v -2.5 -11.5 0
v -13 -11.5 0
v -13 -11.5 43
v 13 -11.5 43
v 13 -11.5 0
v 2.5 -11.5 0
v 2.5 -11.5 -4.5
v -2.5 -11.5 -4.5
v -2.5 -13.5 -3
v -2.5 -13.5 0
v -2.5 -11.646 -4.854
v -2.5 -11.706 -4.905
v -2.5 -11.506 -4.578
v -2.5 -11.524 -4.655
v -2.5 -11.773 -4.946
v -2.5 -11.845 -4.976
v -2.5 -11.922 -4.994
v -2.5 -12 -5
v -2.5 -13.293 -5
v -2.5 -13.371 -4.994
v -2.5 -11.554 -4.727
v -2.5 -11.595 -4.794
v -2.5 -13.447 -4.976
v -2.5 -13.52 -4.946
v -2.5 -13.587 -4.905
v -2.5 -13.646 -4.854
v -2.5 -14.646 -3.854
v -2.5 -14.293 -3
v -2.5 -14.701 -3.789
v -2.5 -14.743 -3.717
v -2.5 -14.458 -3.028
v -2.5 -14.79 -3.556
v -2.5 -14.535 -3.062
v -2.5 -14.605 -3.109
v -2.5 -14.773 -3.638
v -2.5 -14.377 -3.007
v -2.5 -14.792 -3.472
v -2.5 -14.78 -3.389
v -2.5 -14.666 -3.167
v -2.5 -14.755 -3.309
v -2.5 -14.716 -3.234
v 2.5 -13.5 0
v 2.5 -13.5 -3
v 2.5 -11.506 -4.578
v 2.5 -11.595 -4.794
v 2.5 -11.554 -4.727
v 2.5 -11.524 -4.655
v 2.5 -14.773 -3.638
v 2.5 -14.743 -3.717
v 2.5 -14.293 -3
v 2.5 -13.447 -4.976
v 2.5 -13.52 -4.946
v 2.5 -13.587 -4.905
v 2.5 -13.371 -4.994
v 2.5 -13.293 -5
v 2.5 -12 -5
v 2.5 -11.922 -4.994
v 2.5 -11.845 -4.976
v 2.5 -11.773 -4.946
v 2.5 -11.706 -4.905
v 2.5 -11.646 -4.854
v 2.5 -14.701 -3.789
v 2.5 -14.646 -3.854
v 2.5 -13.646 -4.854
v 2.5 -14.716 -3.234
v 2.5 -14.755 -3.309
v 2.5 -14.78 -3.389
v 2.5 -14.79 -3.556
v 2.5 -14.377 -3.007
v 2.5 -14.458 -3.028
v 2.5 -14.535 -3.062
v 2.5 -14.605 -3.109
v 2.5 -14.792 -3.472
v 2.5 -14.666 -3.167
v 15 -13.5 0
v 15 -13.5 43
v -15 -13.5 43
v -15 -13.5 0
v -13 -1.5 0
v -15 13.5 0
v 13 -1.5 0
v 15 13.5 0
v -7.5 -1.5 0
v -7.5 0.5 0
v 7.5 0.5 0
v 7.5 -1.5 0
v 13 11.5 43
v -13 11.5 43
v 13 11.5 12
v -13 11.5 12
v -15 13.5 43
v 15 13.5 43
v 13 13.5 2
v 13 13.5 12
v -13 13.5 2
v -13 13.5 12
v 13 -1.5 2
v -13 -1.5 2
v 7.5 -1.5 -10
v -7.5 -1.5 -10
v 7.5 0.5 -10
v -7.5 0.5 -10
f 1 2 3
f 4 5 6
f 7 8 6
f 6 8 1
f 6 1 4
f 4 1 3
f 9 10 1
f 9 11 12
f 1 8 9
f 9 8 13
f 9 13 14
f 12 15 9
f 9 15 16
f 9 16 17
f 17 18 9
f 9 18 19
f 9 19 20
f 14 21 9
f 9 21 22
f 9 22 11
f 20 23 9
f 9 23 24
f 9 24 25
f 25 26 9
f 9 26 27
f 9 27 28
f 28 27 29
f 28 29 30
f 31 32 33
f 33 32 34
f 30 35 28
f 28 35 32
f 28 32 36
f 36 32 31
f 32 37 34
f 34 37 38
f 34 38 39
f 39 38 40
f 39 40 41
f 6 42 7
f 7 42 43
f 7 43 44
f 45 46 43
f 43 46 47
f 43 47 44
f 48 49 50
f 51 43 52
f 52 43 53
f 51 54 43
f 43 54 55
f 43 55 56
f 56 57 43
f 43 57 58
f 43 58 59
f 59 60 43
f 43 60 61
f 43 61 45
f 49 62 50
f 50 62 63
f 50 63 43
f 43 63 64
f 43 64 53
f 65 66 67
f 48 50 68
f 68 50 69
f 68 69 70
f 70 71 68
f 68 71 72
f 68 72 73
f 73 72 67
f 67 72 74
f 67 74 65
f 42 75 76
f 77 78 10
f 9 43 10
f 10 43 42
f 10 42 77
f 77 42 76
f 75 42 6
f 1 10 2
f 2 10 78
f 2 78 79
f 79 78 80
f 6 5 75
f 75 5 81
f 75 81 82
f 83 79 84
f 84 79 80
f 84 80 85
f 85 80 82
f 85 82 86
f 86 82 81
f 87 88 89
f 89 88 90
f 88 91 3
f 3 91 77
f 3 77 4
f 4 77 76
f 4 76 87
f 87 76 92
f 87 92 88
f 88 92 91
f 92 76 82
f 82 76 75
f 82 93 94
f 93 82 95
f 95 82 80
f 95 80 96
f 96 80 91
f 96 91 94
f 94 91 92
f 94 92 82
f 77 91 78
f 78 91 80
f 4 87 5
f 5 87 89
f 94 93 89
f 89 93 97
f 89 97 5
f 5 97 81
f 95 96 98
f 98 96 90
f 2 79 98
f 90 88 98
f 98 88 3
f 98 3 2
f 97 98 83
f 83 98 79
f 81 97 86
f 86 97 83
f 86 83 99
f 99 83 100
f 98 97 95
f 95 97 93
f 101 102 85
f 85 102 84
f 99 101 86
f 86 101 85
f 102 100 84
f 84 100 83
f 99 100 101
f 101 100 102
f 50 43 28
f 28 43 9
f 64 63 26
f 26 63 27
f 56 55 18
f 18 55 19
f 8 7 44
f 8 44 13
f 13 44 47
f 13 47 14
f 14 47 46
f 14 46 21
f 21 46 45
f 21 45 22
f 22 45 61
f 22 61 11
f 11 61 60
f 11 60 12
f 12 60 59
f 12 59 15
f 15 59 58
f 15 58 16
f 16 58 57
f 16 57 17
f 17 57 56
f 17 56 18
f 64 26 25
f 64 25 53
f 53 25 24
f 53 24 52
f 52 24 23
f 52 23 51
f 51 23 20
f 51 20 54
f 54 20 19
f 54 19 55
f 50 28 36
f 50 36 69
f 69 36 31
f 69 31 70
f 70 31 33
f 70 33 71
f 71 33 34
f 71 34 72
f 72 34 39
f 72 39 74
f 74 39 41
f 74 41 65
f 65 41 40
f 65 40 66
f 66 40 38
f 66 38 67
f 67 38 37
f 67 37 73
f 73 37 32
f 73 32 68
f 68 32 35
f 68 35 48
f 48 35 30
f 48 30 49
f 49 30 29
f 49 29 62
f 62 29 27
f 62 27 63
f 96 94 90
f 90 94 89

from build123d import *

# Parameters (mm, degrees)
SKETCH1_W           = 30
SKETCH1_H           = 27
SKETCH1_W_2         = 26
SKETCH1_H_2         = 23
BOSS_EXTRUDE1_DEPTH = 43
SKETCH3_W           = 30
SKETCH3_H           = 15
BOSS_EXTRUDE2_DEPTH = 2
SKETCH5_W           = 15
SKETCH5_H           = 2
SKETCH5_W_2         = 5
BOSS_EXTRUDE3_DEPTH = 10
BOSS_EXTRUDE4_DEPTH = 5
SKETCH7_W           = 5
SKETCH7_H           = 2
CUT_EXTRUDE1_DEPTH  = 5
FILLET3_R           = 0.5
SKETCH8_W           = 26
SKETCH8_H           = 10
CUT_EXTRUDE2_DEPTH  = 10


with BuildPart() as part:
    # Sketch1 → Boss-Extrude1 (new body)
    with BuildSketch(Plane.XY):
        Rectangle(SKETCH1_W, SKETCH1_H)
        Rectangle(SKETCH1_W_2, SKETCH1_H_2, mode=Mode.SUBTRACT)
    extrude(amount=BOSS_EXTRUDE1_DEPTH)

    # Sketch3 → Boss-Extrude2 (add)
    with BuildSketch(Plane(origin=(0, 0, 0), x_dir=(-1, 0, 0), z_dir=(0, 0, -1))):
        with Locations((0, 6)):
            Rectangle(SKETCH3_W, SKETCH3_H)
    extrude(amount=-BOSS_EXTRUDE2_DEPTH)

    # Sketch5 → Boss-Extrude3 (add)
    with BuildSketch(Plane(origin=(0, 0, 0), x_dir=(-1, 0, 0), z_dir=(0, 0, -1))):
        with Locations((0, -0.5)):
            Rectangle(SKETCH5_W, SKETCH5_H)
        with Locations((0, -12.5)):
            Rectangle(SKETCH5_W_2, SKETCH5_H)
    extrude(amount=BOSS_EXTRUDE3_DEPTH)

    # Sketch6 → Boss-Extrude4 (add)
    with BuildSketch(Plane.ZY.offset(2.5)):
        Polygon((-5, -13.5), (-3, -15.5), (-3, -13.5), align=None)
    extrude(amount=-BOSS_EXTRUDE4_DEPTH)

    # Sketch7 → Cut-Extrude1 (cut)
    with BuildSketch(Plane(origin=(0, 0, -10), x_dir=(-1, 0, 0), z_dir=(0, 0, -1))):
        with Locations((0, -12.5)):
            Rectangle(SKETCH7_W, SKETCH7_H)
    extrude(amount=-CUT_EXTRUDE1_DEPTH, mode=Mode.SUBTRACT)

    # Fillet3
    fillet3_edges = [part.edges().sort_by_distance(p)[0] for p in [
        (0, -13.5, -5),
        (0, -15.5, -3),
        (0, -11.5, -5),
    ]]
    fillet(fillet3_edges, radius=FILLET3_R)

    # Sketch8 → Cut-Extrude2 (cut)
    with BuildSketch(Plane(origin=(0, 13.5, 0), x_dir=(1, 0, 0), z_dir=(0, 1, 0))):
        with Locations((0, -7)):
            Rectangle(SKETCH8_W, SKETCH8_H)
    extrude(amount=-CUT_EXTRUDE2_DEPTH, mode=Mode.SUBTRACT)


solid = part.part
